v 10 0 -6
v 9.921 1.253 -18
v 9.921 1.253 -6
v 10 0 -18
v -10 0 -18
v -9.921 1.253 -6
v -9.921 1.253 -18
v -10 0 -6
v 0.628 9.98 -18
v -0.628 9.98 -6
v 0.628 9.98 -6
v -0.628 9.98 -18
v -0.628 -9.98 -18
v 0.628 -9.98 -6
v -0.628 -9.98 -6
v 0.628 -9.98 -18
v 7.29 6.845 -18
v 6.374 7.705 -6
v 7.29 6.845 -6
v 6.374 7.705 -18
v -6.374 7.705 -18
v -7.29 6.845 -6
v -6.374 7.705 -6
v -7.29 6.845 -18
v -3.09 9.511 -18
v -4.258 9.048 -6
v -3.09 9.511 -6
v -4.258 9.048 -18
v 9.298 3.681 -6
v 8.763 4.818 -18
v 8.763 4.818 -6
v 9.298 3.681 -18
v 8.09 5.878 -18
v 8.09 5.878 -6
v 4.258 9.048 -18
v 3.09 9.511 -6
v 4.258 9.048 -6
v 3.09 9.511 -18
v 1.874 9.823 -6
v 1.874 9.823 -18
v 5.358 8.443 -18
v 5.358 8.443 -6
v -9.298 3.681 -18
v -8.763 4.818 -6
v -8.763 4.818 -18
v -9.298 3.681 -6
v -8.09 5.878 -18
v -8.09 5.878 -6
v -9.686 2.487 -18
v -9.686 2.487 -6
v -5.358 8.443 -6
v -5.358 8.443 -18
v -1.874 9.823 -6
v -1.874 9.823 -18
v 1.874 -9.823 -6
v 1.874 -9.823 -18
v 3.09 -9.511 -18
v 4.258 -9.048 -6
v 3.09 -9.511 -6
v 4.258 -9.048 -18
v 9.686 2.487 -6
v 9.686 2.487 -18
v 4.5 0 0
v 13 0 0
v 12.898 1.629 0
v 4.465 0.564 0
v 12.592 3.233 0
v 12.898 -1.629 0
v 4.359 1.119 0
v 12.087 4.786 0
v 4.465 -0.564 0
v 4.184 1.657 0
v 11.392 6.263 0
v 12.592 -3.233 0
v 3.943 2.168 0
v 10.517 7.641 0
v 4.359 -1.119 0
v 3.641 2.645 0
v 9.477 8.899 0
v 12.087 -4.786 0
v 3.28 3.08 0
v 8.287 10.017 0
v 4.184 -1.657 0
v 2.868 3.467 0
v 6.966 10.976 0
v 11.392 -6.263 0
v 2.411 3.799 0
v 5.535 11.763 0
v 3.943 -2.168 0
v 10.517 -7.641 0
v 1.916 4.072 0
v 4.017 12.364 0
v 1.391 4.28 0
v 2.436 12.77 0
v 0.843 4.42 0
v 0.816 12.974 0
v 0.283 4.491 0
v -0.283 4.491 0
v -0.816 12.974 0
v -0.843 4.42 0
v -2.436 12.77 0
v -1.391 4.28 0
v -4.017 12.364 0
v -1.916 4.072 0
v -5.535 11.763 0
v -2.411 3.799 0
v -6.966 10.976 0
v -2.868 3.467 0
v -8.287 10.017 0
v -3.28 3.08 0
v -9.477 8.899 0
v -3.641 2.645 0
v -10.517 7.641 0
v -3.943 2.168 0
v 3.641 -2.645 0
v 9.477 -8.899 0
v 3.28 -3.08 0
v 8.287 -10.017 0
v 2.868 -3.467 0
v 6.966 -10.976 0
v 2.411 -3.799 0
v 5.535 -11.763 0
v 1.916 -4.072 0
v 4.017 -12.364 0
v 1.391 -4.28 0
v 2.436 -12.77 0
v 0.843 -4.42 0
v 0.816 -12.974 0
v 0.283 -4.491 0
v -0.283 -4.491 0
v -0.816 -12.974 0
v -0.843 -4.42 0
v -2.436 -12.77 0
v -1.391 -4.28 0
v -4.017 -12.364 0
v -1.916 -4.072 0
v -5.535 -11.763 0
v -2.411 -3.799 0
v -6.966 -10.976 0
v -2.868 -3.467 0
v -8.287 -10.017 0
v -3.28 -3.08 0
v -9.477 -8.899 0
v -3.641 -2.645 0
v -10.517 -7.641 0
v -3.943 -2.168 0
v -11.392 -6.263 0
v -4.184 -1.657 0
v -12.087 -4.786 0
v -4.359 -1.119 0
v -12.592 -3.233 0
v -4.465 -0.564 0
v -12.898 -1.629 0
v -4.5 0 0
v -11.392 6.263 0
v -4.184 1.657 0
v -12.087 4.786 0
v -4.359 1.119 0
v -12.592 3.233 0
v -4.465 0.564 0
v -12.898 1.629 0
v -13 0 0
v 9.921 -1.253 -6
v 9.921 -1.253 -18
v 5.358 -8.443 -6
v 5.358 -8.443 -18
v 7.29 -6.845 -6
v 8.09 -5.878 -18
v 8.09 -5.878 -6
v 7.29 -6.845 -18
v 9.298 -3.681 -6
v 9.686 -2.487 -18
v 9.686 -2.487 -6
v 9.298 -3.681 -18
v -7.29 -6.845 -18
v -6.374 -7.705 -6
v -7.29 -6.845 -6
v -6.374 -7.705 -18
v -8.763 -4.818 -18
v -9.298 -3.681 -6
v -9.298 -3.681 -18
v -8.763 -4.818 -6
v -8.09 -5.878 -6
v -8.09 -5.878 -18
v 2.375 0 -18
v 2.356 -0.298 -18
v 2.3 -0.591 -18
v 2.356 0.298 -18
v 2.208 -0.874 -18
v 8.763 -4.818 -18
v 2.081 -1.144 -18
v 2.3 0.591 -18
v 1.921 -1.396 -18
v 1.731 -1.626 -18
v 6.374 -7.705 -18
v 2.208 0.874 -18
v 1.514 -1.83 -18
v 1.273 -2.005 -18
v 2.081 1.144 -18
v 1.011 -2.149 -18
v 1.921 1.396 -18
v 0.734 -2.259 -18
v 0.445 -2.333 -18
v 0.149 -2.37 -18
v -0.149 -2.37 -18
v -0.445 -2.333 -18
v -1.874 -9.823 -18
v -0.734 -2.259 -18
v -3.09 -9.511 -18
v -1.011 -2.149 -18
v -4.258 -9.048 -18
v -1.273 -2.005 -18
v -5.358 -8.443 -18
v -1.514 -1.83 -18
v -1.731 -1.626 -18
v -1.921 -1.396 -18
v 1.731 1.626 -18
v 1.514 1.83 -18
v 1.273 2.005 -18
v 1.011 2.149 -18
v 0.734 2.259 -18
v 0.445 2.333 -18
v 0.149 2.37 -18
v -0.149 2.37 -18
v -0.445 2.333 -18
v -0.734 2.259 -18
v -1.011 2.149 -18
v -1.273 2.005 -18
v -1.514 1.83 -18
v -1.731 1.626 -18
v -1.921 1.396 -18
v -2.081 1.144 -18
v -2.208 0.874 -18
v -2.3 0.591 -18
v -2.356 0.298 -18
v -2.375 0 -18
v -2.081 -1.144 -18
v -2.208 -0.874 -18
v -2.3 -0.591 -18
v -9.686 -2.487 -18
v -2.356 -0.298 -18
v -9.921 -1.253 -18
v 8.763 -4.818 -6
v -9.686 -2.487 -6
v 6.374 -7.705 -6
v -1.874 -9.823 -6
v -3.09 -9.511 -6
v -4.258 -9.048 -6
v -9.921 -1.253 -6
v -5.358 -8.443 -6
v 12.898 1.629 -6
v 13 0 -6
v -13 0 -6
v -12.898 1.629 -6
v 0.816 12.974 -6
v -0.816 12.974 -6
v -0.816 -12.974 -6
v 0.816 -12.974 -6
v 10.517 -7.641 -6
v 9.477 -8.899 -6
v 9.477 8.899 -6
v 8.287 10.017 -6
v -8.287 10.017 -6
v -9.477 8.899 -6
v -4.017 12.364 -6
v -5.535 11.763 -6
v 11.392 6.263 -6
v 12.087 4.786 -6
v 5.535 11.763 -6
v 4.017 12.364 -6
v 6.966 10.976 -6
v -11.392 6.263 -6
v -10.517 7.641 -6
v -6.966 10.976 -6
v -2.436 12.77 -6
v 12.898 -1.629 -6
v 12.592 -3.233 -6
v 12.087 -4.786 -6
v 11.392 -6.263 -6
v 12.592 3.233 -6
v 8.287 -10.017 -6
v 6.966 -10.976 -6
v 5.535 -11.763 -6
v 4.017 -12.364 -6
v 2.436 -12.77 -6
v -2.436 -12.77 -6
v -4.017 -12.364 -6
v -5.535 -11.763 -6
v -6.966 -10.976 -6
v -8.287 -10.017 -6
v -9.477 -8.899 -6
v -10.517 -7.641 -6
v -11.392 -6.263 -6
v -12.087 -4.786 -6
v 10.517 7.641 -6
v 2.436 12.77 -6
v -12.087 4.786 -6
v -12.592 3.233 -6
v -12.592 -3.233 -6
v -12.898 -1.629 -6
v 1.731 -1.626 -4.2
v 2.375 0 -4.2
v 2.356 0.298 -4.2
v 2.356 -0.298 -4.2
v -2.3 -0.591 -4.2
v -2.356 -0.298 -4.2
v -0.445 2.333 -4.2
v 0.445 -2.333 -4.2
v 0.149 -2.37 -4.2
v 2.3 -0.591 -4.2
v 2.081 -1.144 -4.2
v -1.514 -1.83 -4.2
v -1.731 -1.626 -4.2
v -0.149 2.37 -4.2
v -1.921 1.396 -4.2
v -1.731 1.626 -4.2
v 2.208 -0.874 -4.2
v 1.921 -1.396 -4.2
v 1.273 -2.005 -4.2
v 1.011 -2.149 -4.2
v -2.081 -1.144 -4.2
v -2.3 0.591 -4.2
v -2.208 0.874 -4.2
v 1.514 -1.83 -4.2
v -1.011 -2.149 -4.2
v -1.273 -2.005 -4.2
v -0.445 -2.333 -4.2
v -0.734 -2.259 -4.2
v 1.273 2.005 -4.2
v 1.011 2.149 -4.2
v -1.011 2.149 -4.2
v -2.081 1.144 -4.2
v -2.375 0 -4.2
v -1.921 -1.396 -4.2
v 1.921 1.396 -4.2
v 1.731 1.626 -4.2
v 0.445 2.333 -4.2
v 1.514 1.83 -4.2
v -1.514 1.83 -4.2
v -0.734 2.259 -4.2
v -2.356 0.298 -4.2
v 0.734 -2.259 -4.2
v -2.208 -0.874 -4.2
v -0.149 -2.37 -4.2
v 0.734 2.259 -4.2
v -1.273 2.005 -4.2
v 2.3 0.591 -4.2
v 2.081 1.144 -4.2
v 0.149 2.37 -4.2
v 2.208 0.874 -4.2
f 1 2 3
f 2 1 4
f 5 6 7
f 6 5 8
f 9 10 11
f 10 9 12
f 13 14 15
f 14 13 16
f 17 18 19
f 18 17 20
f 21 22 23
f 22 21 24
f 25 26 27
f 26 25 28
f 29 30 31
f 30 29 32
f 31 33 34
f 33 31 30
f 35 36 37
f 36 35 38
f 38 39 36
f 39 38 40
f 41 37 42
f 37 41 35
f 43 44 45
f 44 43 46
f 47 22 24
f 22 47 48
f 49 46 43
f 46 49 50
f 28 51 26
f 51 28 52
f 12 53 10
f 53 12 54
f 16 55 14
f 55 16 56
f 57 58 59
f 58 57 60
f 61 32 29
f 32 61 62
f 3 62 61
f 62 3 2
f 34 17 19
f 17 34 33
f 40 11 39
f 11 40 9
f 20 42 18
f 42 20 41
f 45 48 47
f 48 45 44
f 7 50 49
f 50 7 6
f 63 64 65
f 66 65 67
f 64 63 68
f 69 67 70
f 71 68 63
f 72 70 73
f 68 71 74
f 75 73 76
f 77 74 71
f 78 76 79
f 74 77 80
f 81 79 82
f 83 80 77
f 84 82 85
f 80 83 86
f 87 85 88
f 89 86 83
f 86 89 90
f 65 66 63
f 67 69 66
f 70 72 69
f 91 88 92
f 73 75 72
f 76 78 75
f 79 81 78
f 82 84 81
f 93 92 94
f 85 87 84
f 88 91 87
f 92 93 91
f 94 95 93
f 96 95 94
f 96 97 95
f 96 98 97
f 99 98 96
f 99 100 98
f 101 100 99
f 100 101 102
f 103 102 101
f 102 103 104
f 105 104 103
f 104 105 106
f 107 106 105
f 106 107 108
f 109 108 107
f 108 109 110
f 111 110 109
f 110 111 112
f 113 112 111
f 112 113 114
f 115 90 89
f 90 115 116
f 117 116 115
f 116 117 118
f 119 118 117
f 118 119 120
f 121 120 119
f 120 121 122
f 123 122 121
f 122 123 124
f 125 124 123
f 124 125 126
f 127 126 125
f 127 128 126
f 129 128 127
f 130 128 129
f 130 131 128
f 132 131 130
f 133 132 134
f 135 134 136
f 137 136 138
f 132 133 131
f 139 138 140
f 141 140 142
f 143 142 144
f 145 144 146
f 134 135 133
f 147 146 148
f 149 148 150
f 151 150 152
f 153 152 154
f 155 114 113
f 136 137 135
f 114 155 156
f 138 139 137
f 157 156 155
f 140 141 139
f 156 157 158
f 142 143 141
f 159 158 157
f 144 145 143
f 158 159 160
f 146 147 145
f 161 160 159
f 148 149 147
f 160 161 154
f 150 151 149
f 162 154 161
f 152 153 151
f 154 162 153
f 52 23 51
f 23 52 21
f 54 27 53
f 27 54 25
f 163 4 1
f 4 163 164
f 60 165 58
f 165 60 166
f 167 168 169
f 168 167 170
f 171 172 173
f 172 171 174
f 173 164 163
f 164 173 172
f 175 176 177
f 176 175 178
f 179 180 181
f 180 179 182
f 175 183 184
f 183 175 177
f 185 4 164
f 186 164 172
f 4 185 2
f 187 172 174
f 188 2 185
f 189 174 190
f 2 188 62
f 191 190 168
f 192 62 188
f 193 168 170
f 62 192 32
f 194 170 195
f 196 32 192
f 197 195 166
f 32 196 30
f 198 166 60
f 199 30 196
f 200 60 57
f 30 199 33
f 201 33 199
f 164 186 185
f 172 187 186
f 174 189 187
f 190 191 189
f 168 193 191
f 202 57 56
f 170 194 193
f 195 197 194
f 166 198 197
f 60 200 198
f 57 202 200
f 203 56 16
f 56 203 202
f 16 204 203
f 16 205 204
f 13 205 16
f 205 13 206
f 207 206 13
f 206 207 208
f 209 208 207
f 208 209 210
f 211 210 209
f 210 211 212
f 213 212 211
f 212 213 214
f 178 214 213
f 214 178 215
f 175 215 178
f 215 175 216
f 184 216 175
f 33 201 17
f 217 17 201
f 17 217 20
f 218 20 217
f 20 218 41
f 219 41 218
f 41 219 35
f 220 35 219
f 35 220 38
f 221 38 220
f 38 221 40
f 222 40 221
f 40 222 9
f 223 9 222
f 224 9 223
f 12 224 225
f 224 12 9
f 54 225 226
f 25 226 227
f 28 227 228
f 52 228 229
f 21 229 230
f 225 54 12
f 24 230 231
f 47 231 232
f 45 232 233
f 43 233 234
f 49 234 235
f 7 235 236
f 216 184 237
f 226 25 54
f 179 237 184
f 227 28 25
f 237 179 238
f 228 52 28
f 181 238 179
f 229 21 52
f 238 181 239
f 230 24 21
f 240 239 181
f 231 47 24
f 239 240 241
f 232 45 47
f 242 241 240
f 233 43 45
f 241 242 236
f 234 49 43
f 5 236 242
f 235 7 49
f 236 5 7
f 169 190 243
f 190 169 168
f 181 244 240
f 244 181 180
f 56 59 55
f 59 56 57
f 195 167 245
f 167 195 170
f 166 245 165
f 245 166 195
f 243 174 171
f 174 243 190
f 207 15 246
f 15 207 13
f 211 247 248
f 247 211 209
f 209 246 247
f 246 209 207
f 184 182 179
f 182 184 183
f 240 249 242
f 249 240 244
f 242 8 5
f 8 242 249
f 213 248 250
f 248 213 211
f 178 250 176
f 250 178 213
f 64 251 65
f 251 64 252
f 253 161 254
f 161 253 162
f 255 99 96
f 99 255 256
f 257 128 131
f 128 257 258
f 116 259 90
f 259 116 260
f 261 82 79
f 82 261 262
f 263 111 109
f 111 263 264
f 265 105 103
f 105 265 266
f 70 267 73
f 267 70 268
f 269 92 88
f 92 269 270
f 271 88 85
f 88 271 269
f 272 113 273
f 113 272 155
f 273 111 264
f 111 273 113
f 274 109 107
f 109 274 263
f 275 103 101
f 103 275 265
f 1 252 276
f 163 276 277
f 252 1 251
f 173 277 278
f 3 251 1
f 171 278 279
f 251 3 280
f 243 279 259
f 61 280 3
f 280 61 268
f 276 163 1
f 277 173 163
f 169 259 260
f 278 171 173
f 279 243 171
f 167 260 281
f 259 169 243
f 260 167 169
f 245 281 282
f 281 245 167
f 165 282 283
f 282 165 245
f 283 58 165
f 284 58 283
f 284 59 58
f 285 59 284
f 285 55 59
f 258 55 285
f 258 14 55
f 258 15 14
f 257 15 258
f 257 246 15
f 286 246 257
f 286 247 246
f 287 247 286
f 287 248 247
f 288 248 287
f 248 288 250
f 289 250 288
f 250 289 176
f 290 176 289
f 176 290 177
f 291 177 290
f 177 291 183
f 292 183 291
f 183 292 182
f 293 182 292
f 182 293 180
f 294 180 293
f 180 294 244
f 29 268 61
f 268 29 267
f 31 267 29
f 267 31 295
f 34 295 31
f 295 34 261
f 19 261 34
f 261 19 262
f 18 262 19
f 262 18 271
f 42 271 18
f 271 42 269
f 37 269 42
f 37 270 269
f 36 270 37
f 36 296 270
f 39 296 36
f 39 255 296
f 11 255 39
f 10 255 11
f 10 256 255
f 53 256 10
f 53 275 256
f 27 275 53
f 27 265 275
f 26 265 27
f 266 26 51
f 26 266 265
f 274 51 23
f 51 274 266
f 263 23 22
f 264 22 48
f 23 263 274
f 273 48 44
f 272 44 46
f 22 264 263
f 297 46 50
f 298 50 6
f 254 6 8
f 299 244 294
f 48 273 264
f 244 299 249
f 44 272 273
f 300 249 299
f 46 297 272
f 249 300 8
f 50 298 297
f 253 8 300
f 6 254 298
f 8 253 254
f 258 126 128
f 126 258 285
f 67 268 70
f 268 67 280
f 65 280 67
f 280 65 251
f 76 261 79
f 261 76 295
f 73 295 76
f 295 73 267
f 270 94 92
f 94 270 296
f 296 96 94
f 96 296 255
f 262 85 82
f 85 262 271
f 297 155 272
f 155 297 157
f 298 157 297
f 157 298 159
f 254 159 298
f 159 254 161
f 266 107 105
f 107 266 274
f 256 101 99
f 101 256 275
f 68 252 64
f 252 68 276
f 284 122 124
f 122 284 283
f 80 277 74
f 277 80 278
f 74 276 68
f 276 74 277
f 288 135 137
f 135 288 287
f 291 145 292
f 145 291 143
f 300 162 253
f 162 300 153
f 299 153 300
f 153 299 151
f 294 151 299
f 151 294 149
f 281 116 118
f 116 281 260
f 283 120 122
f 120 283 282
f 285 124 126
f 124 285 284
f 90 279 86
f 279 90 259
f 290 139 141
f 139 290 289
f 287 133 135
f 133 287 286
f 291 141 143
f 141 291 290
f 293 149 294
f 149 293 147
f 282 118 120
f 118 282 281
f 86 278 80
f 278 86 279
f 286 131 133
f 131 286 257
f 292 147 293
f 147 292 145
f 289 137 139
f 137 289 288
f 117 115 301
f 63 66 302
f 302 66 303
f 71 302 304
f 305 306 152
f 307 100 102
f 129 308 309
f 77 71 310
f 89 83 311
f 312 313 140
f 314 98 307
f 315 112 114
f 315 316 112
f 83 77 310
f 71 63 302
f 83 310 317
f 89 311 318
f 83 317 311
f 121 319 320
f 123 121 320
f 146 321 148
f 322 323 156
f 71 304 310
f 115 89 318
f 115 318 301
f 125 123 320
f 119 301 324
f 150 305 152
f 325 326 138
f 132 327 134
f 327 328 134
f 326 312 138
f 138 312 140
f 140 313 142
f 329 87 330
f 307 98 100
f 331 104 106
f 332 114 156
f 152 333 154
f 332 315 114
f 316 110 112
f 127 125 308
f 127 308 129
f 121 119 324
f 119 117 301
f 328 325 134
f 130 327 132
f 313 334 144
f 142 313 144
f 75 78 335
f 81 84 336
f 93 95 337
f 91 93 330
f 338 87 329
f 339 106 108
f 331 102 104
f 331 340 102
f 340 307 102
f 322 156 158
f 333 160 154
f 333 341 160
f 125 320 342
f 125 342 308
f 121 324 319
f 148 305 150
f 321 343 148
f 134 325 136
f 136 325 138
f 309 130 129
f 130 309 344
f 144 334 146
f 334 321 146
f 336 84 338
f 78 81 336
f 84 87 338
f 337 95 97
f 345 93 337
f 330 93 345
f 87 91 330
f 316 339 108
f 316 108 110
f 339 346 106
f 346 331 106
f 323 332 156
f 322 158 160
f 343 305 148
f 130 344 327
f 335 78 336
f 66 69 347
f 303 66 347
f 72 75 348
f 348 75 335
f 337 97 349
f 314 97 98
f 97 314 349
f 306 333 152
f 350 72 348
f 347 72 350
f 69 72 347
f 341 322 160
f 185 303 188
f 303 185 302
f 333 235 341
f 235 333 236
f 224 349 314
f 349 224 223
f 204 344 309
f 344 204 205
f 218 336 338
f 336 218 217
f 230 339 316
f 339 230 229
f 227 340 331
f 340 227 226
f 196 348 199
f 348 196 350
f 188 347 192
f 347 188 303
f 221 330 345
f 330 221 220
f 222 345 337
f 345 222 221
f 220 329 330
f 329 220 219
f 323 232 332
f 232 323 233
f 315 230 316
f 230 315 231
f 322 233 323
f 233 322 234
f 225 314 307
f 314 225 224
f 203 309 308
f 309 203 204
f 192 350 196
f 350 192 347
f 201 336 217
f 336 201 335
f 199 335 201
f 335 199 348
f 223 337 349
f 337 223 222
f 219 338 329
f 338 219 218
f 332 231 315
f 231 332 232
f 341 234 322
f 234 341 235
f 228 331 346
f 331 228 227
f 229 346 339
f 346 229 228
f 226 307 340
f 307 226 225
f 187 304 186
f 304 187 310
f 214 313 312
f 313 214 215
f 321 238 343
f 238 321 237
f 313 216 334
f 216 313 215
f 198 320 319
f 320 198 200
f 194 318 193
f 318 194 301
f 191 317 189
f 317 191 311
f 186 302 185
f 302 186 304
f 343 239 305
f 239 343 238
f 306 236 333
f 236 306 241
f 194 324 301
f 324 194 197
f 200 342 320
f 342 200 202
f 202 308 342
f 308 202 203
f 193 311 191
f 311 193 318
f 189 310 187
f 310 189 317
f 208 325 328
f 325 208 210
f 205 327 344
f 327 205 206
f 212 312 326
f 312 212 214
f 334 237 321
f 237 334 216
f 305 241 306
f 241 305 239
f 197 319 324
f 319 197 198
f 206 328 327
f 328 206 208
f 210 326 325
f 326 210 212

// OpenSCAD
$fn = 50;


difference() {
	union() {
		translate(v = [0, 0, -18.0000000000]) {
			cylinder(h = 18, r = 10.0000000000);
		}
		translate(v = [0, 0, -6.0000000000]) {
			cylinder(h = 6, r = 13.0000000000);
		}
	}
	union() {
		translate(v = [0, 0, 0]) {
			rotate(a = [0, 0, 0]) {
				difference() {
					union() {
						#translate(v = [0, 0, -18.0000000000]) {
							cylinder(h = 18, r = 2.2500000000);
						}
						#translate(v = [0, 0, -4.2000000000]) {
							cylinder(h = 4.2000000000, r = 10.0000000000, r1 = 2.3750000000, r2 = 4.5000000000);
						}
						#translate(v = [0, 0, -18.0000000000]) {
							cylinder(h = 18, r = 2.3750000000);
						}
						#translate(v = [0, 0, -18.0000000000]) {
							cylinder(h = 18, r = 2.2500000000);
						}
					}
					union();
				}
			}
		}
	}
}
